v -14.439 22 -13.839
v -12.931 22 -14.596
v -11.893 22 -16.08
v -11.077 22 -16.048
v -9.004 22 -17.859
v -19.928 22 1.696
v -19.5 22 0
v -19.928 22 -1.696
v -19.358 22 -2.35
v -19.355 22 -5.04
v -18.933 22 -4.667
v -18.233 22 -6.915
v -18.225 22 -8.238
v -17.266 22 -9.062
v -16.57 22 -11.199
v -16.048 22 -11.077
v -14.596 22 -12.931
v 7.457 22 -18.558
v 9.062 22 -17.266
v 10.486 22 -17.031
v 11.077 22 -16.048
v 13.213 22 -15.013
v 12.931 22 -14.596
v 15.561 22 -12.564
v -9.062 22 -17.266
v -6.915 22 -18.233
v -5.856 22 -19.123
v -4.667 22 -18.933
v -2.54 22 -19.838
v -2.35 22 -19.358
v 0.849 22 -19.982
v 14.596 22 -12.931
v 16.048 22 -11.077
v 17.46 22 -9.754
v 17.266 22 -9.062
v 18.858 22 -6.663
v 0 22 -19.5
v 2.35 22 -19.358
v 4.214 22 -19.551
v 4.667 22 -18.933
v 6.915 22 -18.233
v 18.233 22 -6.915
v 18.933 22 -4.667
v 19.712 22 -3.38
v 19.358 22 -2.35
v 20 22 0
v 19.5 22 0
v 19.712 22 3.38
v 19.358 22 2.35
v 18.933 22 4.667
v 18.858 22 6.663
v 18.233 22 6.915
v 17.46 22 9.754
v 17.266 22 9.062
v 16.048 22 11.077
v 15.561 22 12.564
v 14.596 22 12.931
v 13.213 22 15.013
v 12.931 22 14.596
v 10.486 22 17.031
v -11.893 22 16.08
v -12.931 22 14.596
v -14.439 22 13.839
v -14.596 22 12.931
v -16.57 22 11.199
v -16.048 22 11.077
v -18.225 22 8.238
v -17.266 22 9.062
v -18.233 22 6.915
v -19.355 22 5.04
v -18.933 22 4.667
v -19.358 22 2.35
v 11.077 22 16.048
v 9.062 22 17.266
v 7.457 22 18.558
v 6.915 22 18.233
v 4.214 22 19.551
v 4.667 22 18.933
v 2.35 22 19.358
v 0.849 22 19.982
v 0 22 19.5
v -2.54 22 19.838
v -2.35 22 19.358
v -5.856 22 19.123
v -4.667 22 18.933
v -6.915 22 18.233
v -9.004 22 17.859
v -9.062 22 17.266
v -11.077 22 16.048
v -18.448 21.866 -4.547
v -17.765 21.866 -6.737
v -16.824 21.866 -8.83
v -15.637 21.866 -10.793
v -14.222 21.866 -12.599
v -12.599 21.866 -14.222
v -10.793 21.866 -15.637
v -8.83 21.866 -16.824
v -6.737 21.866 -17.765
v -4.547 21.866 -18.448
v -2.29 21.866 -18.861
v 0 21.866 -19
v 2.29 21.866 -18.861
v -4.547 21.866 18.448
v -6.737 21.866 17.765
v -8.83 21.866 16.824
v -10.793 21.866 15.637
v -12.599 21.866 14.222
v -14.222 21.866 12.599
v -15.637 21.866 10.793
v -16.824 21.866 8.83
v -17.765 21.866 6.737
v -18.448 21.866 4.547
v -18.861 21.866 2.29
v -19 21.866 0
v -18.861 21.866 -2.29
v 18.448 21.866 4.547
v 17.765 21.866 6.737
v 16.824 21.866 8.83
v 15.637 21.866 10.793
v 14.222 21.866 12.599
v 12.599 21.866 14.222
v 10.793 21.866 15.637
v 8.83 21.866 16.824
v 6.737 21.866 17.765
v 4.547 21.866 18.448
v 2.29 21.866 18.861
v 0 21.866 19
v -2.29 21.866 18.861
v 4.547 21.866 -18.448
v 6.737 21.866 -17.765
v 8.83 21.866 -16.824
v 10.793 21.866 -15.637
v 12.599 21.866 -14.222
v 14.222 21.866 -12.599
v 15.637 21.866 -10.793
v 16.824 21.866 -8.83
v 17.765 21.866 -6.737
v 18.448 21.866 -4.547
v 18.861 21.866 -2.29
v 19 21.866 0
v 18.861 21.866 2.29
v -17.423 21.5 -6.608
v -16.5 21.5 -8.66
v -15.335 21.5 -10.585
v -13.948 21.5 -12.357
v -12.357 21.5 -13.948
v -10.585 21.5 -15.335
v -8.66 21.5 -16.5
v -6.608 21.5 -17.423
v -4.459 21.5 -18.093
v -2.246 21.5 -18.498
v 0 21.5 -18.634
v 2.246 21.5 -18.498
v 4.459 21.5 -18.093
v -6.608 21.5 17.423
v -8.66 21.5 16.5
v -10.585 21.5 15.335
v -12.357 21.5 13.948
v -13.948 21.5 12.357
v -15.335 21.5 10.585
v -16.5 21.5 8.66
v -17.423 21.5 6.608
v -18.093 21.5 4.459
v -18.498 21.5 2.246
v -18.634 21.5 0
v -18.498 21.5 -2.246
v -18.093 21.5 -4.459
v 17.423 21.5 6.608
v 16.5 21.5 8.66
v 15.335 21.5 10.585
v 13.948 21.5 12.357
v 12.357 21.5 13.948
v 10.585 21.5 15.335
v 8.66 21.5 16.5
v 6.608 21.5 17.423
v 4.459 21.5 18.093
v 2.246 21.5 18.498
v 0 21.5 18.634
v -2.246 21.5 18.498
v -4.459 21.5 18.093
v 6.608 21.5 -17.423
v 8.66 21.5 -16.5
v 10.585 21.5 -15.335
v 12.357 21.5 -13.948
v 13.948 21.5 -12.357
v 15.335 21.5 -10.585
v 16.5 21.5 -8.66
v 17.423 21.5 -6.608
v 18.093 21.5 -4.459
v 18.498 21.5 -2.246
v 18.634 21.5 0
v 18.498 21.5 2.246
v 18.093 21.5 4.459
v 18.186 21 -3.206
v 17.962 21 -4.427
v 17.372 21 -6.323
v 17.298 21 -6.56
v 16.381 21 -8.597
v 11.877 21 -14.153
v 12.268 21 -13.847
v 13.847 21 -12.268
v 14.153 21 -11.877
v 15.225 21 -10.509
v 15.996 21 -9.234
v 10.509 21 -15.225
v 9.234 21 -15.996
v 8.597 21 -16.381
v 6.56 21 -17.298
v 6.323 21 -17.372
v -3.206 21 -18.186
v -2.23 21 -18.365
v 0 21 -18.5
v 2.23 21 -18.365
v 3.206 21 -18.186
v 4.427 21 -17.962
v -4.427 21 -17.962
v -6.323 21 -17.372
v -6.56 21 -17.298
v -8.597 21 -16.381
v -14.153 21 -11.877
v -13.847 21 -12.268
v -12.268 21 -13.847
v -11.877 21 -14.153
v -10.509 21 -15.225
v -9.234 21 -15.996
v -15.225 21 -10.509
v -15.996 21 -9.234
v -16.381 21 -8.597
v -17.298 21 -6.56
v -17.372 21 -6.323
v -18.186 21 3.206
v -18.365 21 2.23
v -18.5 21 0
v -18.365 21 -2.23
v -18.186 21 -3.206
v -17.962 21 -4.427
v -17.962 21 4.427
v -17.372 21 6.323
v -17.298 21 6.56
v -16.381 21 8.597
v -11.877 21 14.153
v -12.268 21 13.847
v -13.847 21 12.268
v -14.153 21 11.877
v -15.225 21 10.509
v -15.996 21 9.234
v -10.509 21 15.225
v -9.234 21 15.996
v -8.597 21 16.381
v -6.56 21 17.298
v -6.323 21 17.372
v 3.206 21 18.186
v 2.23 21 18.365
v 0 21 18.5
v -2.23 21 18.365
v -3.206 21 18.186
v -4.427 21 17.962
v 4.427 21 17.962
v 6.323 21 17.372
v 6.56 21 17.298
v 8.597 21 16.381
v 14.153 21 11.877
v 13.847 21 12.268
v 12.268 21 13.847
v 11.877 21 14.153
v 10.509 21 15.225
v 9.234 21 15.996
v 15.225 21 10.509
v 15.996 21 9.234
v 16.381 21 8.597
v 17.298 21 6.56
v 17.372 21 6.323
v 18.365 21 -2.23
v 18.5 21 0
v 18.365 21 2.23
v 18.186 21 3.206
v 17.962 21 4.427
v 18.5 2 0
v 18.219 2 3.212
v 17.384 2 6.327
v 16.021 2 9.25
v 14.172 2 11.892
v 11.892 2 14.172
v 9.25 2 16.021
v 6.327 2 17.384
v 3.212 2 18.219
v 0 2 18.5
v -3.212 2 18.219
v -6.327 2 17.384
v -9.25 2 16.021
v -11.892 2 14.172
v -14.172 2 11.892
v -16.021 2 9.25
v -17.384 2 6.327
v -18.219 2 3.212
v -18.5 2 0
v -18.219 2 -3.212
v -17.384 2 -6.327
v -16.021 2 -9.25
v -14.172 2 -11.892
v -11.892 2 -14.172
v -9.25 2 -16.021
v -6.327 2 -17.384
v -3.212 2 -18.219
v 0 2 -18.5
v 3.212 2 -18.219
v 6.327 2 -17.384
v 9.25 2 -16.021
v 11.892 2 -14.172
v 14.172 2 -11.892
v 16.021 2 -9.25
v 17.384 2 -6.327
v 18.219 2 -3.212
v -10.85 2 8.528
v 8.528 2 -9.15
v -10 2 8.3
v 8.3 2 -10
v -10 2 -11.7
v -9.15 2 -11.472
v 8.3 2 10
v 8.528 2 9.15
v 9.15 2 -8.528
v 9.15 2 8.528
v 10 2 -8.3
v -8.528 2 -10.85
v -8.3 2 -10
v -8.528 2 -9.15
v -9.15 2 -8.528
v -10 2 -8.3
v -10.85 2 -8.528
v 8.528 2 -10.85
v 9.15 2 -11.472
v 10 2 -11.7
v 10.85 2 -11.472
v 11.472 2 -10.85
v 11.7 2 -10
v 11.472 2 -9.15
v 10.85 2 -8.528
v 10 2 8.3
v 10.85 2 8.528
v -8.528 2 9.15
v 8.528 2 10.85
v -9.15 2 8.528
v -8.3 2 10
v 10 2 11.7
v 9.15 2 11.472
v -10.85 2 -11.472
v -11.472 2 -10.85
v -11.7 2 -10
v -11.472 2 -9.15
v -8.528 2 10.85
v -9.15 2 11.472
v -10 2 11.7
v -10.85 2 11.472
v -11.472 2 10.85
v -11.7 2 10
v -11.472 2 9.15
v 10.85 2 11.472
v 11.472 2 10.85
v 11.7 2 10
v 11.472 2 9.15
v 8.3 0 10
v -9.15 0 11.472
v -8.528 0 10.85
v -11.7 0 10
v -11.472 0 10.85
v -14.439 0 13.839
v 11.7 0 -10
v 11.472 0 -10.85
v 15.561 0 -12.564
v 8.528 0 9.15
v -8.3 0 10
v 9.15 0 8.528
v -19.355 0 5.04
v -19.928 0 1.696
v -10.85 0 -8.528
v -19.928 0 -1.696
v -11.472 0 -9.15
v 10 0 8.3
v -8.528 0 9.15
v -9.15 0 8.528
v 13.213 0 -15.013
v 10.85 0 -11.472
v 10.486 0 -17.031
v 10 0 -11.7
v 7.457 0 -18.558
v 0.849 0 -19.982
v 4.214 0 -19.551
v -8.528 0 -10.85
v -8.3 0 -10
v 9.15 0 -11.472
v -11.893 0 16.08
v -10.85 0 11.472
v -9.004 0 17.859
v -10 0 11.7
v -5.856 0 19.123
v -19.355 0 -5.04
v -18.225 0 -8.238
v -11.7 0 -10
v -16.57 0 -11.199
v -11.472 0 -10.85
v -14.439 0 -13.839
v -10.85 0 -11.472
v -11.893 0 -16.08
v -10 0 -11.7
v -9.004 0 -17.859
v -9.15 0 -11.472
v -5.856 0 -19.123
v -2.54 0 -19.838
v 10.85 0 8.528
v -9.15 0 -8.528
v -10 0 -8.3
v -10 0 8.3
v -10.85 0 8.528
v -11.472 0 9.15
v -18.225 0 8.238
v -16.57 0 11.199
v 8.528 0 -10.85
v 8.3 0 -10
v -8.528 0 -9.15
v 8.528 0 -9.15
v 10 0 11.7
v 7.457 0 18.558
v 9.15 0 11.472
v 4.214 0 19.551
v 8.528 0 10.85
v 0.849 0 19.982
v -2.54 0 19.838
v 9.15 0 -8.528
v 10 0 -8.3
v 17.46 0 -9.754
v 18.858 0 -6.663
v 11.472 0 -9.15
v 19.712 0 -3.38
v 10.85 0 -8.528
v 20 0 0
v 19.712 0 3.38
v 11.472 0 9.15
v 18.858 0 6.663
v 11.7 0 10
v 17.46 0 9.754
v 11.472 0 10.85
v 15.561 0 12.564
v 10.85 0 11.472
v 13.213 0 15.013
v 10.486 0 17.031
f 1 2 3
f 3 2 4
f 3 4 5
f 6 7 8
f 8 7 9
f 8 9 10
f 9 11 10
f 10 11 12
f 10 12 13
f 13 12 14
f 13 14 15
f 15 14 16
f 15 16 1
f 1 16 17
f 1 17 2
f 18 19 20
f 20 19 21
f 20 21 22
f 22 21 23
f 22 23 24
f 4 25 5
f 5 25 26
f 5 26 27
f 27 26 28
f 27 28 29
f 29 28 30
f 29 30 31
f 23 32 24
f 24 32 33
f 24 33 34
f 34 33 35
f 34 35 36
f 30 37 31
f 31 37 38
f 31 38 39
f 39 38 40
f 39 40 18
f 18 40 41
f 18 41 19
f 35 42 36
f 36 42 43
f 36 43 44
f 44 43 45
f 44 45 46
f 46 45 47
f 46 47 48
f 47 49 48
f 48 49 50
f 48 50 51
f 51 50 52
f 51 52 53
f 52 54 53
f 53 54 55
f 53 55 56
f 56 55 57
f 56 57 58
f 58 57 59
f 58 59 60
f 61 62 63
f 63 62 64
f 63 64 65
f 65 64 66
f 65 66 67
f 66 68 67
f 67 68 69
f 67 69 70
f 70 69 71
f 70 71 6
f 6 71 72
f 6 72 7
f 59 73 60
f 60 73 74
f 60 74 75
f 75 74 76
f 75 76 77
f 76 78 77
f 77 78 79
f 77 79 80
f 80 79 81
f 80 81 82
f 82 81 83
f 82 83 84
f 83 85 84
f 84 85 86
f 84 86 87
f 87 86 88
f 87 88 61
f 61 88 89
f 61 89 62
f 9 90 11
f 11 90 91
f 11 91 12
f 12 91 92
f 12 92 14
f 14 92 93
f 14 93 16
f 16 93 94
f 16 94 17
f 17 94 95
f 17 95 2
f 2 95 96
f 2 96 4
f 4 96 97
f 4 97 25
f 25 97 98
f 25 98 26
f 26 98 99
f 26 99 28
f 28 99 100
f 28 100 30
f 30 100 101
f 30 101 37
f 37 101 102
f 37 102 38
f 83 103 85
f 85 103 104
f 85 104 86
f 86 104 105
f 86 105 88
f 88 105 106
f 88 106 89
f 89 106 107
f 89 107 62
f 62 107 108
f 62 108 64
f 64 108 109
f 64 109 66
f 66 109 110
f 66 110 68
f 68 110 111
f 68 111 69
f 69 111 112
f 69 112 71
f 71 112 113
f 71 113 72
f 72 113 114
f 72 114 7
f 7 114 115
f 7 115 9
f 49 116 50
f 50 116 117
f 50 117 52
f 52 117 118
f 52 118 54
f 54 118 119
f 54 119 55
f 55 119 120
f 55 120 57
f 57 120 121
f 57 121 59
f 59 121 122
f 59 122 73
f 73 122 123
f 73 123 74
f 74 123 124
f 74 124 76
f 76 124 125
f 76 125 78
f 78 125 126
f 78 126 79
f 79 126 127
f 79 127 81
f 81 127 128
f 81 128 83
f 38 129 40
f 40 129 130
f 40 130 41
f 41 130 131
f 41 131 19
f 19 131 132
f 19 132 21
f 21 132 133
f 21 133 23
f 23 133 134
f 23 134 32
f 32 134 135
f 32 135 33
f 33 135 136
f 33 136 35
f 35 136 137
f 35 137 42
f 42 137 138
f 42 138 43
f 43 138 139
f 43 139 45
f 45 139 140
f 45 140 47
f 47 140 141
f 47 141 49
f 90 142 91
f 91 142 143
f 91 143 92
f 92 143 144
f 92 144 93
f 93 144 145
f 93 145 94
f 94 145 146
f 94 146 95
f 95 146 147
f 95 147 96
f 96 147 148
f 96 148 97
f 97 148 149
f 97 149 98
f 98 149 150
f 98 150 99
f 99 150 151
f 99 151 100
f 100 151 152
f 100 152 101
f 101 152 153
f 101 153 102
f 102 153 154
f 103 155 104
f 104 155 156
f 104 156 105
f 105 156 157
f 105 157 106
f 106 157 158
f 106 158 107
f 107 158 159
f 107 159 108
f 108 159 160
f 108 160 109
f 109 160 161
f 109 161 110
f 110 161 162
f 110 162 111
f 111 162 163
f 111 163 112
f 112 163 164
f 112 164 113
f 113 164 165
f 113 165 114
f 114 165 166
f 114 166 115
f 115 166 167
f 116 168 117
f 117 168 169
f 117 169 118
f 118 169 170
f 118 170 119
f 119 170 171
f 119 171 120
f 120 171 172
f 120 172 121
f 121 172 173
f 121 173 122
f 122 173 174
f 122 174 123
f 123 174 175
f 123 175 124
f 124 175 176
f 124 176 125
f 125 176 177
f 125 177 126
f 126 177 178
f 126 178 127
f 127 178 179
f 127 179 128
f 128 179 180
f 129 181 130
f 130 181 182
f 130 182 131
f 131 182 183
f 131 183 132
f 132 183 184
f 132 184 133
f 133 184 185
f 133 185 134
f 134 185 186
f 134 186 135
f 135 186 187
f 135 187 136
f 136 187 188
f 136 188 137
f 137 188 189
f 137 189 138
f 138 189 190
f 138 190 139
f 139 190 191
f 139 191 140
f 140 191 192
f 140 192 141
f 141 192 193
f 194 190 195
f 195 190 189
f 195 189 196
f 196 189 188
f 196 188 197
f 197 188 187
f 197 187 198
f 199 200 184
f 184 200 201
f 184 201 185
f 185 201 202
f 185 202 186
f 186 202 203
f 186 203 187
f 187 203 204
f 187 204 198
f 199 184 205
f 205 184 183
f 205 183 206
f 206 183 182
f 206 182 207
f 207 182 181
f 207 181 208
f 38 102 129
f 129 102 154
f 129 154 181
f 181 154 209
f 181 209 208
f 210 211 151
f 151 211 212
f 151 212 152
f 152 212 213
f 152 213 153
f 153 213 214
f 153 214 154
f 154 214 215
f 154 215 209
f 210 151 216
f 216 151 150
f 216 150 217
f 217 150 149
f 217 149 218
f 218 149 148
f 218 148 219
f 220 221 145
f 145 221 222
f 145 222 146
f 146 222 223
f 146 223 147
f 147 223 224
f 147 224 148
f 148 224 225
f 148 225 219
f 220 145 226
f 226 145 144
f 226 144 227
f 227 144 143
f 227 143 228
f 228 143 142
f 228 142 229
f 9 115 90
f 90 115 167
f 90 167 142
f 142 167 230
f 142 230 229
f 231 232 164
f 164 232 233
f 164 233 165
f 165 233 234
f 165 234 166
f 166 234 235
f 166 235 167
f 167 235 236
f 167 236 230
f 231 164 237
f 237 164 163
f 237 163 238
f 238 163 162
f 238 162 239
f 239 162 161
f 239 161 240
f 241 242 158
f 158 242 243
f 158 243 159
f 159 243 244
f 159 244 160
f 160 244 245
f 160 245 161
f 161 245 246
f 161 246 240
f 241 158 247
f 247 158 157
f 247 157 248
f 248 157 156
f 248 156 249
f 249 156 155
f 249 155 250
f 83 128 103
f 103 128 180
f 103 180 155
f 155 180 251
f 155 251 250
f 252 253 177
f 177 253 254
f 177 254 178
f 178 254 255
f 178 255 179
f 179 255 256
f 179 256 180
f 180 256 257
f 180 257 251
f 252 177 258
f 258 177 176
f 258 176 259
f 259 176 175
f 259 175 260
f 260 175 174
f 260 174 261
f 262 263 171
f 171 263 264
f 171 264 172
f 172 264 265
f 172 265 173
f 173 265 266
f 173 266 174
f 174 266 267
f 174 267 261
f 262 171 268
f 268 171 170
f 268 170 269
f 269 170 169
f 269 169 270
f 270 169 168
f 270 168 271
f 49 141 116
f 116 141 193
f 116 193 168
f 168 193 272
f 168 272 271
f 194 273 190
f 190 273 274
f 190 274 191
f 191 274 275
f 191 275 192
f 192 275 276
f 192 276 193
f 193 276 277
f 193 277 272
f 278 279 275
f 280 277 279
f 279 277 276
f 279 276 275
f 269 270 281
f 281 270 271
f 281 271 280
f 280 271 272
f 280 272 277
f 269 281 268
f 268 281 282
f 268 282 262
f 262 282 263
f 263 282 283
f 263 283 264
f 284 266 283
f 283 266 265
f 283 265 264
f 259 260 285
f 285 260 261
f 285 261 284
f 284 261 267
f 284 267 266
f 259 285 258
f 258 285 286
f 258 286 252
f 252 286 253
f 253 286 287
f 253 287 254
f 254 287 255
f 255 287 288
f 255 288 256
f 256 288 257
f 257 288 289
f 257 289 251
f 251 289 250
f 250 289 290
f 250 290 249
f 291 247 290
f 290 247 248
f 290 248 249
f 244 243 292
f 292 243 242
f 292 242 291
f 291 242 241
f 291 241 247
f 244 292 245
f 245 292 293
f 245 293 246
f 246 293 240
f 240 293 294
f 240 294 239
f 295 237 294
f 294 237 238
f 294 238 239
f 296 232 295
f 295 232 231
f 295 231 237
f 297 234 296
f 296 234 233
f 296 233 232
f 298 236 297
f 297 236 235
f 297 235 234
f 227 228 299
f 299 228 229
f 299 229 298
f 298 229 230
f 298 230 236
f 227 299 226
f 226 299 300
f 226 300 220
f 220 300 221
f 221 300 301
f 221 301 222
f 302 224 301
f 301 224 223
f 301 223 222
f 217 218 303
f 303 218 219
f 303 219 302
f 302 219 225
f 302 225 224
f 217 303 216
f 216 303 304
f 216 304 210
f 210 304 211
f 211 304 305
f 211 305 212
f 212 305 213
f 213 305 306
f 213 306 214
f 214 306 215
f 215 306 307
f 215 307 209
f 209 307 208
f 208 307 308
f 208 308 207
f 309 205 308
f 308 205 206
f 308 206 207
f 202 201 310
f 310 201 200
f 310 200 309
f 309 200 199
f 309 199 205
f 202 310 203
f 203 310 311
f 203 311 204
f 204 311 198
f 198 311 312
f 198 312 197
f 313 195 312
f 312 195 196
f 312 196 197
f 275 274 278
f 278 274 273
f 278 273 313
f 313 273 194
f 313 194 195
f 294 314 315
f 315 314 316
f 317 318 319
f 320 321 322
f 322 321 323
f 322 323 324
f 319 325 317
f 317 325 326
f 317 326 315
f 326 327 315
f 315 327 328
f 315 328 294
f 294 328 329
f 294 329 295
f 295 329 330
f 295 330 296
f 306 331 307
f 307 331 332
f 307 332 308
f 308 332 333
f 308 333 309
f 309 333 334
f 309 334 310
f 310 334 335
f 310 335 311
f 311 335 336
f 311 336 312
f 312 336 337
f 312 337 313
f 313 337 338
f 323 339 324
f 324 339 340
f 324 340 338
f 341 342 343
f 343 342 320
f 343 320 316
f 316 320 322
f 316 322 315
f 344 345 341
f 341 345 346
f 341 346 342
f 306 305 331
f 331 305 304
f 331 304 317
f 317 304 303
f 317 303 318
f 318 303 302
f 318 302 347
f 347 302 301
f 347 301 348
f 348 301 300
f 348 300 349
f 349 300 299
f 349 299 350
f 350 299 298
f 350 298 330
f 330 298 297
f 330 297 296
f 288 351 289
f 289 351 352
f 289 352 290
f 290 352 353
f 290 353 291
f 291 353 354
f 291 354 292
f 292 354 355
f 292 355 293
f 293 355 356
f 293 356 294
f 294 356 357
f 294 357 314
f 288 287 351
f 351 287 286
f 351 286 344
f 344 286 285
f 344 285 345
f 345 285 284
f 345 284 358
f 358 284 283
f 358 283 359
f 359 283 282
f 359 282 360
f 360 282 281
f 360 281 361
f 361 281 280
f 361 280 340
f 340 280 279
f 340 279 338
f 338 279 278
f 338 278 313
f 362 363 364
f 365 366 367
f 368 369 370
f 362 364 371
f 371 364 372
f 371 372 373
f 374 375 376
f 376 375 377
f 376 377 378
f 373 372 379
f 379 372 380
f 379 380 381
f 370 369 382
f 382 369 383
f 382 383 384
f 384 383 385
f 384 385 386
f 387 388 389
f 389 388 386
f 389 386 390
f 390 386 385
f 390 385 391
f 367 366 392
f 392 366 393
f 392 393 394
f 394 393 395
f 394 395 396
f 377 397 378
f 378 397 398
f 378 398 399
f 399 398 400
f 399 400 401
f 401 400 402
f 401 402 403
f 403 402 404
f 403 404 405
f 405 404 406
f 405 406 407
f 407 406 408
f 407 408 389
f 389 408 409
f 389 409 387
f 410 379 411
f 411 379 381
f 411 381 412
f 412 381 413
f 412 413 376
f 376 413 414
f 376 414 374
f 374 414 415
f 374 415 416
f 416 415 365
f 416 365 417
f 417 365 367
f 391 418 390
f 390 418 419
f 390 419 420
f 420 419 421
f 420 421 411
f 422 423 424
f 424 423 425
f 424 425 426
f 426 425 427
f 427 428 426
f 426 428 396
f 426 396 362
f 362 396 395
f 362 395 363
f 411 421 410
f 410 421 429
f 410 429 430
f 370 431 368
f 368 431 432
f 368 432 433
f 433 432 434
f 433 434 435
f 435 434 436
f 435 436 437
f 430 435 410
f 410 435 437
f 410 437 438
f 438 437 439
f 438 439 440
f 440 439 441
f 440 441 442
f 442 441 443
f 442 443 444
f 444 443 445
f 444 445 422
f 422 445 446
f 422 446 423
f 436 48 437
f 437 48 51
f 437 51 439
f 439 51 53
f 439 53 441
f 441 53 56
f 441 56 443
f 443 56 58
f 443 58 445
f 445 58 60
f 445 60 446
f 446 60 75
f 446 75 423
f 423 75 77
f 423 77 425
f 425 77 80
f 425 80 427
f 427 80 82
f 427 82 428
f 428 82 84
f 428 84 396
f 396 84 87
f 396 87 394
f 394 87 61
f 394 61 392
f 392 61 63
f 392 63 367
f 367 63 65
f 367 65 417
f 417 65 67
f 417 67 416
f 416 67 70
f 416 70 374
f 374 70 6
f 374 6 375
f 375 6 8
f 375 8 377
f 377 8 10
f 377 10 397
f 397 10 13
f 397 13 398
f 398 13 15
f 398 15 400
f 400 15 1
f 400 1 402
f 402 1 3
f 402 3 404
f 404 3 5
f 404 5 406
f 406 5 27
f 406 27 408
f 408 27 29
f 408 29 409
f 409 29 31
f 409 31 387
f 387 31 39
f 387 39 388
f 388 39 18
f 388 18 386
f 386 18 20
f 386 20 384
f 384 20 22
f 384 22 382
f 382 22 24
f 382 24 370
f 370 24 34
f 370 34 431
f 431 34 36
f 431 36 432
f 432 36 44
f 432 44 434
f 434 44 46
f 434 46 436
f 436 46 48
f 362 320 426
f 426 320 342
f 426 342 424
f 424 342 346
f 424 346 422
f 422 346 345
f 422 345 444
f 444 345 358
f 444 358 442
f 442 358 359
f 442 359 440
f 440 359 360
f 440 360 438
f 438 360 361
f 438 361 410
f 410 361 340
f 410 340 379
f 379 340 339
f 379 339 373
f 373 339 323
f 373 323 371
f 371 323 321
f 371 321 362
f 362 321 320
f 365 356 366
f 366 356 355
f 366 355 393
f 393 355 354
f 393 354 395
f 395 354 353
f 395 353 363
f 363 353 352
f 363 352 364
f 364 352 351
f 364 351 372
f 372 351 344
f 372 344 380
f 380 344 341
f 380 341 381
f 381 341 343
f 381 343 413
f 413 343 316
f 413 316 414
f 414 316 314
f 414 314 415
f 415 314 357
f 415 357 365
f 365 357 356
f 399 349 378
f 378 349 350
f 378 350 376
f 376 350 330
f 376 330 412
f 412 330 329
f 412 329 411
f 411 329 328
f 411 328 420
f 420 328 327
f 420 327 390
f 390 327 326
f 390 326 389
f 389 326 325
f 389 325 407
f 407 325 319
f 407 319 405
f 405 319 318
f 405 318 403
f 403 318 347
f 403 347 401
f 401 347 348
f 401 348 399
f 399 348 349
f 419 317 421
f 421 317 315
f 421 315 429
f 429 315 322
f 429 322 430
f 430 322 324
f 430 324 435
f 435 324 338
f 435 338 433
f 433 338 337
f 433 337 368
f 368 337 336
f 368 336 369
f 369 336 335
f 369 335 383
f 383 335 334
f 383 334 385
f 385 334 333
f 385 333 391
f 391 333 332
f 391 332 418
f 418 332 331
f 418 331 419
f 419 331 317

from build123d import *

# Parameters (mm, degrees)
CUT_EXTRUDE_1_DEPTH = 10


with BuildPart() as part:
    # 草图3 → 旋转1 (revolve)
    with BuildSketch(Plane.XY):
        with BuildLine():
            Line((0, 0), (0, 2))
            Line((0, 2), (18.5, 2))
            Line((18.5, 2), (18.5, 21))
            ThreePointArc((18.5, 21), (18.792893219, 21.707106781), (19.5, 22))
            Line((19.5, 22), (20, 22))
            Line((20, 22), (20, 2))
            Line((20, 2), (20, 1))
            Line((20, 1), (20, 0))
            Line((20, 0), (0, 0))
        make_face()
    revolve(axis=Axis((0, 0, 0), (0, 1, 0)))

    # 草图4 → 切除-拉伸1 (cut)
    with BuildSketch(Plane(origin=(0, 2, 0), x_dir=(1, 0, 0), z_dir=(0, 1, 0))):
        with BuildLine():
            ThreePointArc((10, -8.3), (8.797918472, -8.797918472), (8.3, -10))
            Line((8.3, -10), (10, -10))
            Line((10, -10), (10, -8.3))
        make_face()
        with BuildLine():
            Line((10, -10), (8.3, -10))
            ThreePointArc((8.3, -10), (10, -11.7), (11.7, -10))
            ThreePointArc((11.7, -10), (11.202081528, -8.797918472), (10, -8.3))
            Line((10, -8.3), (10, -10))
        make_face()
        with BuildLine():
            ThreePointArc((-10, -8.3), (-11.202081528, -11.202081528), (-8.3, -10))
            Line((-8.3, -10), (-10, -10))
            Line((-10, -10), (-10, -8.3))
        make_face()
        with BuildLine():
            Line((-10, -10), (-8.3, -10))
            ThreePointArc((-8.3, -10), (-8.797918472, -8.797918472), (-10, -8.3))
            Line((-10, -8.3), (-10, -10))
        make_face()
        with BuildLine():
            ThreePointArc((-8.3, 10), (-11.202081528, 11.202081528), (-10, 8.3))
            Line((-10, 8.3), (-10, 10))
            Line((-10, 10), (-8.3, 10))
        make_face()
        with BuildLine():
            Line((-10, 10), (-10, 8.3))
            ThreePointArc((-10, 8.3), (-8.797918472, 8.797918472), (-8.3, 10))
            Line((-8.3, 10), (-10, 10))
        make_face()
        with BuildLine():
            ThreePointArc((8.3, 10), (8.797918472, 8.797918472), (10, 8.3))
            Line((10, 8.3), (10, 10))
            Line((10, 10), (8.3, 10))
        make_face()
        with BuildLine():
            Line((10, 10), (10, 8.3))
            ThreePointArc((10, 8.3), (11.202081528, 8.797918472), (11.7, 10))
            ThreePointArc((11.7, 10), (10, 11.7), (8.3, 10))
            Line((8.3, 10), (10, 10))
        make_face()
    extrude(amount=-CUT_EXTRUDE_1_DEPTH, mode=Mode.SUBTRACT)


solid = part.part
